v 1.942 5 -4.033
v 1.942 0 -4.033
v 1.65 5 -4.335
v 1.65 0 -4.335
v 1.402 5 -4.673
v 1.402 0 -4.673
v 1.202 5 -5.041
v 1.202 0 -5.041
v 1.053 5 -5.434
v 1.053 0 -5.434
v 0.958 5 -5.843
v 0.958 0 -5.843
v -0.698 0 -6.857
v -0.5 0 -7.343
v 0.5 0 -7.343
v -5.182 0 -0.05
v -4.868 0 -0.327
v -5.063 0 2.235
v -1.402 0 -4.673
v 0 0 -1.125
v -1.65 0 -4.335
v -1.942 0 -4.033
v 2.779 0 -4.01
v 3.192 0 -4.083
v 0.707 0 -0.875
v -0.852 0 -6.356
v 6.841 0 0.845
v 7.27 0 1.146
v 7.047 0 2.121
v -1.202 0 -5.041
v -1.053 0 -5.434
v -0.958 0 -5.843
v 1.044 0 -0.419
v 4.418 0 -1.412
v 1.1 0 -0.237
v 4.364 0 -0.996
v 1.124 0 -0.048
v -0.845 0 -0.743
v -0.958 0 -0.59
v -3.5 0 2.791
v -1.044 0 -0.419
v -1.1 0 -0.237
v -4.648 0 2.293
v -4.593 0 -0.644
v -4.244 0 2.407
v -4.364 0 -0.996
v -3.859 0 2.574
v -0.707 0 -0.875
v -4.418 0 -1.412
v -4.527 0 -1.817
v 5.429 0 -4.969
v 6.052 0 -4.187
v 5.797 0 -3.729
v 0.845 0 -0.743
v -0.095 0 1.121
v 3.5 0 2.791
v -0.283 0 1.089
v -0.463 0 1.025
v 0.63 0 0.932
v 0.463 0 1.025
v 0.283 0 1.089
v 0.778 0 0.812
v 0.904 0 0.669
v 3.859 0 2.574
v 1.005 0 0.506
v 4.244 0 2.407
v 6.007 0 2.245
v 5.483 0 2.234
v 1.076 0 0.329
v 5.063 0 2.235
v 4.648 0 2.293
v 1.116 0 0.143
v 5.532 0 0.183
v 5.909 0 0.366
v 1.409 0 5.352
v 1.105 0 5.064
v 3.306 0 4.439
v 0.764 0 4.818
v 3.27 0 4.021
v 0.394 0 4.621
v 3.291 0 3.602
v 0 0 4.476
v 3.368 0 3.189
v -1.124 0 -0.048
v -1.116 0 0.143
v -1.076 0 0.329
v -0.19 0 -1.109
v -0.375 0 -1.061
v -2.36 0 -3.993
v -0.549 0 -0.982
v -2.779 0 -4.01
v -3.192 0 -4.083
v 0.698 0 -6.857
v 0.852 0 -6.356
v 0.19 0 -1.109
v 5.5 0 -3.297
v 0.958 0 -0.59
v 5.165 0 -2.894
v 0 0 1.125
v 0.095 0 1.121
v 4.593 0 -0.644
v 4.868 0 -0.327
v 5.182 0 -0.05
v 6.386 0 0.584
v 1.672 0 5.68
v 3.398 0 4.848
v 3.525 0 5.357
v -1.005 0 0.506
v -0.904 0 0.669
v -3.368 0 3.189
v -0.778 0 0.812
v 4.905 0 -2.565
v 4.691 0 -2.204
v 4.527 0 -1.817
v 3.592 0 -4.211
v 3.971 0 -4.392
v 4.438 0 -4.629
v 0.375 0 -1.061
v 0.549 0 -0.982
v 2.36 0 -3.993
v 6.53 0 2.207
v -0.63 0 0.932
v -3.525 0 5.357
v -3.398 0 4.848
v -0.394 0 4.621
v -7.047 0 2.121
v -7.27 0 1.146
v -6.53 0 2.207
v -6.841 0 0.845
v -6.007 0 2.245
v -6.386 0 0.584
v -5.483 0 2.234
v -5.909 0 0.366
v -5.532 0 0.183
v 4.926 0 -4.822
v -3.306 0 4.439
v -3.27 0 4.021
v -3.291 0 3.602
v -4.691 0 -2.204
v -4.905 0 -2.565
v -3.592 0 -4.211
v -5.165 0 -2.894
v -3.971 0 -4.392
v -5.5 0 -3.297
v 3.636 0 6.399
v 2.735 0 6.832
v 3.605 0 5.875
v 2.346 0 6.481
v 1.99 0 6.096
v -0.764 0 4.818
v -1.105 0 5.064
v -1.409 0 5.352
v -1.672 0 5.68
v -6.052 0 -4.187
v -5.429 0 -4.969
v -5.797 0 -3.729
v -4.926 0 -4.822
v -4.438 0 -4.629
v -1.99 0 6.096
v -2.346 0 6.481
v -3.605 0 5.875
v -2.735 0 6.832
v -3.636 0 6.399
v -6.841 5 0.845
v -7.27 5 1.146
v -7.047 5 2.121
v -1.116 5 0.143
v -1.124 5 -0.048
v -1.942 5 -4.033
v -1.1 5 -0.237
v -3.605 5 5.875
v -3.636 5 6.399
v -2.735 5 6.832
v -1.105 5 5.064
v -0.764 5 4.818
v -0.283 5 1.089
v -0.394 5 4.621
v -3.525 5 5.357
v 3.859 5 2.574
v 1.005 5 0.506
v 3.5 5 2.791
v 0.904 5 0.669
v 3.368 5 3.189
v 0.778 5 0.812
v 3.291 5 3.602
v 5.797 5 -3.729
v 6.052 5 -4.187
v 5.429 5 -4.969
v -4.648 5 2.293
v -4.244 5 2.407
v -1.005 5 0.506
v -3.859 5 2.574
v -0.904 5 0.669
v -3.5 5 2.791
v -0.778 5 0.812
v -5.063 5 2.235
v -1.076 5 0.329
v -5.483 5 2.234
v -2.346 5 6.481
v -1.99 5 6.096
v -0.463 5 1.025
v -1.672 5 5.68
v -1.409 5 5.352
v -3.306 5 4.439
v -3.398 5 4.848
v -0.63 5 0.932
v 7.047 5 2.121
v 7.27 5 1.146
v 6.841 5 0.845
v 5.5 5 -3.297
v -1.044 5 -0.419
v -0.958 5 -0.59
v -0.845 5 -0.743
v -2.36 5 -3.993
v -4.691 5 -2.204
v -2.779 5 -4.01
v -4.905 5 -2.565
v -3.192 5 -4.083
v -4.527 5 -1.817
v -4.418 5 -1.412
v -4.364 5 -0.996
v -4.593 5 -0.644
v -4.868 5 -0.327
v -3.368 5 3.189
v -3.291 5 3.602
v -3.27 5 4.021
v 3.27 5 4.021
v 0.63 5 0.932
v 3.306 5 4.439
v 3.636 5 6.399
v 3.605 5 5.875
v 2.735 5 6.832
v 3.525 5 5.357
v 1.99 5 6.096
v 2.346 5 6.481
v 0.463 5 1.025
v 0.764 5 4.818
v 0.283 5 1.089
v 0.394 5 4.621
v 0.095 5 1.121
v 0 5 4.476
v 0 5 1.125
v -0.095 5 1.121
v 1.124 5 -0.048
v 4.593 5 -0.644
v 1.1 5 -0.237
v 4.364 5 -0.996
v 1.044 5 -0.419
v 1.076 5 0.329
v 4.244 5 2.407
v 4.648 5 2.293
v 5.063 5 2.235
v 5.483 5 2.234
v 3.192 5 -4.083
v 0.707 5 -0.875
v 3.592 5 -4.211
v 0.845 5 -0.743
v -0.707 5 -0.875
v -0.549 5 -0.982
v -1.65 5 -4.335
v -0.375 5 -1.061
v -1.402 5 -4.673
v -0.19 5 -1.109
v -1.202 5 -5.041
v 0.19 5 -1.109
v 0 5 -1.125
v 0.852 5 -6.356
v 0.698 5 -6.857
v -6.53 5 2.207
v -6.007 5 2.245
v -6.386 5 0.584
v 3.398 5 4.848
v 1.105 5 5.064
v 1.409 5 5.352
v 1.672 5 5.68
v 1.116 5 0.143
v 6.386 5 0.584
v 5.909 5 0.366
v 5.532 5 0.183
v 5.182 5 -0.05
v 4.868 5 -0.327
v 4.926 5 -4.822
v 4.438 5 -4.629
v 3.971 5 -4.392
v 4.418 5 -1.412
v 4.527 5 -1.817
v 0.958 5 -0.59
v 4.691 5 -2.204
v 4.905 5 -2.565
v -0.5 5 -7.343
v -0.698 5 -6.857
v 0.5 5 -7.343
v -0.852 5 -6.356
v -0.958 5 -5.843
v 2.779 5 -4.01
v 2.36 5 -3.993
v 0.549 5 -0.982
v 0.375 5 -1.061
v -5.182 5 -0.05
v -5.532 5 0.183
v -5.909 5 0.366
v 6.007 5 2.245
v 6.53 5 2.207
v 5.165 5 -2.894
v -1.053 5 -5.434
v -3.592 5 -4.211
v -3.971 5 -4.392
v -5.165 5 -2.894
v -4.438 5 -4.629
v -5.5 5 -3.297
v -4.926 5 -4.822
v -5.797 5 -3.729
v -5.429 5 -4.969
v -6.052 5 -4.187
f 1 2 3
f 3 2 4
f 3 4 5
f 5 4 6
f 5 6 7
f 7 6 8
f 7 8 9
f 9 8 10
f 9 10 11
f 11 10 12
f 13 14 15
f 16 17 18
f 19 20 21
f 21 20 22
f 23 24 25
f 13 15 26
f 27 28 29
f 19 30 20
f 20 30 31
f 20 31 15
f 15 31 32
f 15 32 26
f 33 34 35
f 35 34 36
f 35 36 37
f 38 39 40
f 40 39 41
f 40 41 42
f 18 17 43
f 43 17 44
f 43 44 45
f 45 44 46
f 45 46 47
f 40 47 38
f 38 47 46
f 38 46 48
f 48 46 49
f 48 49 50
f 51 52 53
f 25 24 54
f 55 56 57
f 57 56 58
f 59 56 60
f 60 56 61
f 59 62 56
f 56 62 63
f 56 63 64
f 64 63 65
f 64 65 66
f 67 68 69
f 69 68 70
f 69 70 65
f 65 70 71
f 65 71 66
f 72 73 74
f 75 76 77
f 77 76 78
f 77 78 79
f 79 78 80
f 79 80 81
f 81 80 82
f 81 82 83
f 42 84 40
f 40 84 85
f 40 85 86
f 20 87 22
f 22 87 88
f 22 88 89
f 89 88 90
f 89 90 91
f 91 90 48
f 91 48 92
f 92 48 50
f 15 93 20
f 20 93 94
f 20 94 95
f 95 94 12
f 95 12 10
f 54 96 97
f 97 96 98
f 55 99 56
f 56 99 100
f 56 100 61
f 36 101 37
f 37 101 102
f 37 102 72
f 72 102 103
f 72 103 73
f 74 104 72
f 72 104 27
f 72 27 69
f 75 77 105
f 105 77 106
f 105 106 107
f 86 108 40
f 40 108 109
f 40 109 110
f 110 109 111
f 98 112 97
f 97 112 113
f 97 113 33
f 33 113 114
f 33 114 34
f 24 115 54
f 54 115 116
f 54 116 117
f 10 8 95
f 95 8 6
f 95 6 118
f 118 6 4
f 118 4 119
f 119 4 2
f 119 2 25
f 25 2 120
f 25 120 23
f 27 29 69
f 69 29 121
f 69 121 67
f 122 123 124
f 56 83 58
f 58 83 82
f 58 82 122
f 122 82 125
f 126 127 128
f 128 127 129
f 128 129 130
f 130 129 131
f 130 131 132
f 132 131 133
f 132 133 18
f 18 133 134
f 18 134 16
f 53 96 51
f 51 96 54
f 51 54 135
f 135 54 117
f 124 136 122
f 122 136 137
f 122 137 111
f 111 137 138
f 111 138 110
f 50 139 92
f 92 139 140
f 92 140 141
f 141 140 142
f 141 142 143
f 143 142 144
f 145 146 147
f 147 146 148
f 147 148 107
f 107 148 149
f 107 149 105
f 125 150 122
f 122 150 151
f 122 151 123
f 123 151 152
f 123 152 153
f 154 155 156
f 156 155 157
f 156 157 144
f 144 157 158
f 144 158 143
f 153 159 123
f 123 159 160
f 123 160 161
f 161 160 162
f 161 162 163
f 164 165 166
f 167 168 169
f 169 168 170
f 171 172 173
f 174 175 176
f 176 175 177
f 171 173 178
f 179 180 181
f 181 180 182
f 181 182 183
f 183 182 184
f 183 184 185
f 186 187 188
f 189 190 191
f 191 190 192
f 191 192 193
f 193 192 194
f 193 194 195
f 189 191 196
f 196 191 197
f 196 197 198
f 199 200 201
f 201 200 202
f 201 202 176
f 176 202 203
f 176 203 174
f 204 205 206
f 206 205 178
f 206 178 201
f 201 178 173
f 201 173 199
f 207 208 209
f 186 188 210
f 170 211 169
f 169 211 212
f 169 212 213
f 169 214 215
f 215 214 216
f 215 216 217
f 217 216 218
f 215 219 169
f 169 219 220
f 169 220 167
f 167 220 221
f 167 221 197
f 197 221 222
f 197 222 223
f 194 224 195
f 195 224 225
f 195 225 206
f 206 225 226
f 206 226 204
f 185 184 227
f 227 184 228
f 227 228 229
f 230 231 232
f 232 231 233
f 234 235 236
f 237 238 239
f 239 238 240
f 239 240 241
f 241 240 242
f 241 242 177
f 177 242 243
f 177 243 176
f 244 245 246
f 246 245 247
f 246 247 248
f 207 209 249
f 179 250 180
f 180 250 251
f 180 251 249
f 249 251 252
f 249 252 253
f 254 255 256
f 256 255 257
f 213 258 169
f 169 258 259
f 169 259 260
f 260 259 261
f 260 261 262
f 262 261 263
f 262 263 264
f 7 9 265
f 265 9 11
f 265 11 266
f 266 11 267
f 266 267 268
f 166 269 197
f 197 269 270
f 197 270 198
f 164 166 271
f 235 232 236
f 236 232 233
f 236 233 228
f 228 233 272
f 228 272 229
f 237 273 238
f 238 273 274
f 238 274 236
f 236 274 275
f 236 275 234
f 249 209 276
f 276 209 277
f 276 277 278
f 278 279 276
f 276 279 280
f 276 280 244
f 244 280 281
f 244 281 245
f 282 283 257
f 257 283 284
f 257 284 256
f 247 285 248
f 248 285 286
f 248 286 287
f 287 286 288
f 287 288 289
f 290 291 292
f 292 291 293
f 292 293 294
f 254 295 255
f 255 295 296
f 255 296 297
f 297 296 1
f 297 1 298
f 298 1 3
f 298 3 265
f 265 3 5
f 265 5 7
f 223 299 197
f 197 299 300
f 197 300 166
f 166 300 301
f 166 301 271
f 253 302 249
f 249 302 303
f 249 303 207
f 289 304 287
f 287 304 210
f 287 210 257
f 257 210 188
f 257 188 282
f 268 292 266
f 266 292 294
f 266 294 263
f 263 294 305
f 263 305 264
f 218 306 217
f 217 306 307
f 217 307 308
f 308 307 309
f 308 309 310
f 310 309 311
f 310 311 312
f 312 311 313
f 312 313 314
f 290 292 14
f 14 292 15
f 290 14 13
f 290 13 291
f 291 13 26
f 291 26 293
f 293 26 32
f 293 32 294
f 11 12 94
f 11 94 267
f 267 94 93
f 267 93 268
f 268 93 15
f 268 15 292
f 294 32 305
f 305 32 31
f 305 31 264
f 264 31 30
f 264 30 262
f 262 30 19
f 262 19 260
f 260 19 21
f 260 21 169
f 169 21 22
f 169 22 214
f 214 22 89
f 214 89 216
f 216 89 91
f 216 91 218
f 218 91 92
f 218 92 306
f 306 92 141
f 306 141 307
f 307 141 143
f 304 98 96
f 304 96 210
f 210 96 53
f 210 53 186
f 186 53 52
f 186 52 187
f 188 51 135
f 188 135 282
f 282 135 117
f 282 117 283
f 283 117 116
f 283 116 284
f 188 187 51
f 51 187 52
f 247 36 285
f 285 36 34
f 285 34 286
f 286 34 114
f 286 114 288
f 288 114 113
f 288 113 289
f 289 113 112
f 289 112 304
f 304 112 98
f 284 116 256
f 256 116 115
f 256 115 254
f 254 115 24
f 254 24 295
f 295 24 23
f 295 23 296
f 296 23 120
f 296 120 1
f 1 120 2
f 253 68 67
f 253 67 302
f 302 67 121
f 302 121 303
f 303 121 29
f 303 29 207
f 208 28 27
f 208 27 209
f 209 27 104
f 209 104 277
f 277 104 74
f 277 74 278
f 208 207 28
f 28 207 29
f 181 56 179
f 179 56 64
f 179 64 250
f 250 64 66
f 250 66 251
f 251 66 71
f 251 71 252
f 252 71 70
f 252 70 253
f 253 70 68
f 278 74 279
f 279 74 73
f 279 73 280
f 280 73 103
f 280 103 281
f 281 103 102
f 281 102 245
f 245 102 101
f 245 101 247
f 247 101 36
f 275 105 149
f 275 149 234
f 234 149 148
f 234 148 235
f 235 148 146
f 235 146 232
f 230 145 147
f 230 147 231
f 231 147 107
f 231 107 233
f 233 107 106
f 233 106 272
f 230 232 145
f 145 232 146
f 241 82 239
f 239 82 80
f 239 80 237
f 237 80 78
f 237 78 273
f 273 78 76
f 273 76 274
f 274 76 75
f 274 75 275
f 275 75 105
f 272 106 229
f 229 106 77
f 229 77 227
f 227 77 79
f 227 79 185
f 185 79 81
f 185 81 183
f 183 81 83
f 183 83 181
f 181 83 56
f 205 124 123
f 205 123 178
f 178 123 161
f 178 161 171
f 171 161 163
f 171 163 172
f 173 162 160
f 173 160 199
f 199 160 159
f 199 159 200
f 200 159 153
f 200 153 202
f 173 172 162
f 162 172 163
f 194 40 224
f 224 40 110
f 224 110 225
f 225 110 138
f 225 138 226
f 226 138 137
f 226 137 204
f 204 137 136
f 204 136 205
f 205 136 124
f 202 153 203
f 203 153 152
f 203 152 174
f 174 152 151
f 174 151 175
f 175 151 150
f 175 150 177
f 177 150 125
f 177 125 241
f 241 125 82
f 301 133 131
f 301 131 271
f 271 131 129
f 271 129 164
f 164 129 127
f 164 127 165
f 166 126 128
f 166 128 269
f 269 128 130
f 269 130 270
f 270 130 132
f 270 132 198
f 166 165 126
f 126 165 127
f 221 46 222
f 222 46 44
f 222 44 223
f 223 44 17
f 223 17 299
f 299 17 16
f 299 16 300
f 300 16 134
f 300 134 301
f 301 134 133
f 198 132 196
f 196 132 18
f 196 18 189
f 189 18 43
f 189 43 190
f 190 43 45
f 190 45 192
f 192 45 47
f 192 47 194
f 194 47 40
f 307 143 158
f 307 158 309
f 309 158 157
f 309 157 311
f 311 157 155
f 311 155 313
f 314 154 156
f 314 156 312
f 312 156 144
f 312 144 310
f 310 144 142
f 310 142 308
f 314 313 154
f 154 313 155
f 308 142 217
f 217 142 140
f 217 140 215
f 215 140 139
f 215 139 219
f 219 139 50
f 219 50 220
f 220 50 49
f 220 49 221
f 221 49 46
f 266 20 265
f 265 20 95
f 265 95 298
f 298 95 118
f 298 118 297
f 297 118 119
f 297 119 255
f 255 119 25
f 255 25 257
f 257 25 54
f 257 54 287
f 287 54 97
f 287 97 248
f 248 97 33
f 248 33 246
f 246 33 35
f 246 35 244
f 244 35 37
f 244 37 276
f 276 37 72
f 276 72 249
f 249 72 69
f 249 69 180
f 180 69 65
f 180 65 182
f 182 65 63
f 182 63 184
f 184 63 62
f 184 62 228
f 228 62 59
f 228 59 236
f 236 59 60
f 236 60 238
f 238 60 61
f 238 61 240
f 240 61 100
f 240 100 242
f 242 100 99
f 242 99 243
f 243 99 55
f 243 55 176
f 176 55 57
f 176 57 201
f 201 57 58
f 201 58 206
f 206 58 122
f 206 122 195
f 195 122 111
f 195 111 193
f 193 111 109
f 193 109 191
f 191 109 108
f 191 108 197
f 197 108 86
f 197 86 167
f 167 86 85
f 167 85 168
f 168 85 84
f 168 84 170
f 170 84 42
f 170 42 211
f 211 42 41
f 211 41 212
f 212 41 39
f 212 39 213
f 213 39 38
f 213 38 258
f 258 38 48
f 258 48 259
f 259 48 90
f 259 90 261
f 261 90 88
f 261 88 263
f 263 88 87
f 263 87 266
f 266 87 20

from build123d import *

# Parameters (mm, degrees)
BOSS_EXTRUDE1_DEPTH = 5
CIRPATTERN2_COUNT   = 7
BOSS_EXTRUDE3_DEPTH = 5


with BuildPart() as part:
    # Sketch1 → Boss-Extrude1 (new body)
    with BuildSketch(Plane(origin=(0, 0, 0), x_dir=(1, 0, 0), z_dir=(0, 1, 0))):
        with BuildLine():
            Line((0.5, 7.342689489), (-0.5, 7.342689489))
            ThreePointArc((-0.5, 7.342689489), (-0.952778657, 5.876485931), (-1, 4.342689489))
            Line((-1, 4.342689489), (1, 4.342689489))
            ThreePointArc((1, 4.342689489), (0.952778657, 5.876485931), (0.5, 7.342689489))
        make_face()
        with BuildLine():
            Line((0, 5.842689489), (0.9583076, 5.842689489))
            ThreePointArc((0.9583076, 5.842689489), (1.314078634, 4.820077302), (2, 3.98232997))
            Line((2, 3.98232997), (-2, 3.98232997))
            ThreePointArc((-2, 3.98232997), (-1.314078634, 4.820077302), (-0.9583076, 5.842689489))
            Line((-0.9583076, 5.842689489), (0, 5.842689489))
        make_face()
    boss_extrude1 = extrude(amount=BOSS_EXTRUDE1_DEPTH)

    # CirPattern2: Boss-Extrude1 ×7 about axis
    cirpattern2_axis = Axis((0, 0, 0), (0, 1, 0))
    for i in range(1, CIRPATTERN2_COUNT):
        add(boss_extrude1.rotate(cirpattern2_axis, i * 360 / CIRPATTERN2_COUNT))

    # Sketch1<5> → Boss-Extrude3 (add)
    with BuildSketch(Plane(origin=(0, 0, 0), x_dir=(1, 0, 0), z_dir=(0, 1, 0))):
        with BuildLine():
            ThreePointArc((4.456338407, 0), (3.792863615, 2.339473785), (2, 3.98232997))
            Line((2, 3.98232997), (-2, 3.98232997))
            ThreePointArc((-2, 3.98232997), (-2.339473785, -3.792863615), (4.456338407, 0))
        make_face()
        with BuildLine():
            ThreePointArc((1.125, 0), (0.795495129, -0.795495129), (0, -1.125))
            ThreePointArc((0, -1.125), (-1.125, 0), (0, 1.125))
            ThreePointArc((0, 1.125), (0.795495129, 0.795495129), (1.125, 0))
        make_face(mode=Mode.SUBTRACT)
    extrude(amount=BOSS_EXTRUDE3_DEPTH)


solid = part.part
